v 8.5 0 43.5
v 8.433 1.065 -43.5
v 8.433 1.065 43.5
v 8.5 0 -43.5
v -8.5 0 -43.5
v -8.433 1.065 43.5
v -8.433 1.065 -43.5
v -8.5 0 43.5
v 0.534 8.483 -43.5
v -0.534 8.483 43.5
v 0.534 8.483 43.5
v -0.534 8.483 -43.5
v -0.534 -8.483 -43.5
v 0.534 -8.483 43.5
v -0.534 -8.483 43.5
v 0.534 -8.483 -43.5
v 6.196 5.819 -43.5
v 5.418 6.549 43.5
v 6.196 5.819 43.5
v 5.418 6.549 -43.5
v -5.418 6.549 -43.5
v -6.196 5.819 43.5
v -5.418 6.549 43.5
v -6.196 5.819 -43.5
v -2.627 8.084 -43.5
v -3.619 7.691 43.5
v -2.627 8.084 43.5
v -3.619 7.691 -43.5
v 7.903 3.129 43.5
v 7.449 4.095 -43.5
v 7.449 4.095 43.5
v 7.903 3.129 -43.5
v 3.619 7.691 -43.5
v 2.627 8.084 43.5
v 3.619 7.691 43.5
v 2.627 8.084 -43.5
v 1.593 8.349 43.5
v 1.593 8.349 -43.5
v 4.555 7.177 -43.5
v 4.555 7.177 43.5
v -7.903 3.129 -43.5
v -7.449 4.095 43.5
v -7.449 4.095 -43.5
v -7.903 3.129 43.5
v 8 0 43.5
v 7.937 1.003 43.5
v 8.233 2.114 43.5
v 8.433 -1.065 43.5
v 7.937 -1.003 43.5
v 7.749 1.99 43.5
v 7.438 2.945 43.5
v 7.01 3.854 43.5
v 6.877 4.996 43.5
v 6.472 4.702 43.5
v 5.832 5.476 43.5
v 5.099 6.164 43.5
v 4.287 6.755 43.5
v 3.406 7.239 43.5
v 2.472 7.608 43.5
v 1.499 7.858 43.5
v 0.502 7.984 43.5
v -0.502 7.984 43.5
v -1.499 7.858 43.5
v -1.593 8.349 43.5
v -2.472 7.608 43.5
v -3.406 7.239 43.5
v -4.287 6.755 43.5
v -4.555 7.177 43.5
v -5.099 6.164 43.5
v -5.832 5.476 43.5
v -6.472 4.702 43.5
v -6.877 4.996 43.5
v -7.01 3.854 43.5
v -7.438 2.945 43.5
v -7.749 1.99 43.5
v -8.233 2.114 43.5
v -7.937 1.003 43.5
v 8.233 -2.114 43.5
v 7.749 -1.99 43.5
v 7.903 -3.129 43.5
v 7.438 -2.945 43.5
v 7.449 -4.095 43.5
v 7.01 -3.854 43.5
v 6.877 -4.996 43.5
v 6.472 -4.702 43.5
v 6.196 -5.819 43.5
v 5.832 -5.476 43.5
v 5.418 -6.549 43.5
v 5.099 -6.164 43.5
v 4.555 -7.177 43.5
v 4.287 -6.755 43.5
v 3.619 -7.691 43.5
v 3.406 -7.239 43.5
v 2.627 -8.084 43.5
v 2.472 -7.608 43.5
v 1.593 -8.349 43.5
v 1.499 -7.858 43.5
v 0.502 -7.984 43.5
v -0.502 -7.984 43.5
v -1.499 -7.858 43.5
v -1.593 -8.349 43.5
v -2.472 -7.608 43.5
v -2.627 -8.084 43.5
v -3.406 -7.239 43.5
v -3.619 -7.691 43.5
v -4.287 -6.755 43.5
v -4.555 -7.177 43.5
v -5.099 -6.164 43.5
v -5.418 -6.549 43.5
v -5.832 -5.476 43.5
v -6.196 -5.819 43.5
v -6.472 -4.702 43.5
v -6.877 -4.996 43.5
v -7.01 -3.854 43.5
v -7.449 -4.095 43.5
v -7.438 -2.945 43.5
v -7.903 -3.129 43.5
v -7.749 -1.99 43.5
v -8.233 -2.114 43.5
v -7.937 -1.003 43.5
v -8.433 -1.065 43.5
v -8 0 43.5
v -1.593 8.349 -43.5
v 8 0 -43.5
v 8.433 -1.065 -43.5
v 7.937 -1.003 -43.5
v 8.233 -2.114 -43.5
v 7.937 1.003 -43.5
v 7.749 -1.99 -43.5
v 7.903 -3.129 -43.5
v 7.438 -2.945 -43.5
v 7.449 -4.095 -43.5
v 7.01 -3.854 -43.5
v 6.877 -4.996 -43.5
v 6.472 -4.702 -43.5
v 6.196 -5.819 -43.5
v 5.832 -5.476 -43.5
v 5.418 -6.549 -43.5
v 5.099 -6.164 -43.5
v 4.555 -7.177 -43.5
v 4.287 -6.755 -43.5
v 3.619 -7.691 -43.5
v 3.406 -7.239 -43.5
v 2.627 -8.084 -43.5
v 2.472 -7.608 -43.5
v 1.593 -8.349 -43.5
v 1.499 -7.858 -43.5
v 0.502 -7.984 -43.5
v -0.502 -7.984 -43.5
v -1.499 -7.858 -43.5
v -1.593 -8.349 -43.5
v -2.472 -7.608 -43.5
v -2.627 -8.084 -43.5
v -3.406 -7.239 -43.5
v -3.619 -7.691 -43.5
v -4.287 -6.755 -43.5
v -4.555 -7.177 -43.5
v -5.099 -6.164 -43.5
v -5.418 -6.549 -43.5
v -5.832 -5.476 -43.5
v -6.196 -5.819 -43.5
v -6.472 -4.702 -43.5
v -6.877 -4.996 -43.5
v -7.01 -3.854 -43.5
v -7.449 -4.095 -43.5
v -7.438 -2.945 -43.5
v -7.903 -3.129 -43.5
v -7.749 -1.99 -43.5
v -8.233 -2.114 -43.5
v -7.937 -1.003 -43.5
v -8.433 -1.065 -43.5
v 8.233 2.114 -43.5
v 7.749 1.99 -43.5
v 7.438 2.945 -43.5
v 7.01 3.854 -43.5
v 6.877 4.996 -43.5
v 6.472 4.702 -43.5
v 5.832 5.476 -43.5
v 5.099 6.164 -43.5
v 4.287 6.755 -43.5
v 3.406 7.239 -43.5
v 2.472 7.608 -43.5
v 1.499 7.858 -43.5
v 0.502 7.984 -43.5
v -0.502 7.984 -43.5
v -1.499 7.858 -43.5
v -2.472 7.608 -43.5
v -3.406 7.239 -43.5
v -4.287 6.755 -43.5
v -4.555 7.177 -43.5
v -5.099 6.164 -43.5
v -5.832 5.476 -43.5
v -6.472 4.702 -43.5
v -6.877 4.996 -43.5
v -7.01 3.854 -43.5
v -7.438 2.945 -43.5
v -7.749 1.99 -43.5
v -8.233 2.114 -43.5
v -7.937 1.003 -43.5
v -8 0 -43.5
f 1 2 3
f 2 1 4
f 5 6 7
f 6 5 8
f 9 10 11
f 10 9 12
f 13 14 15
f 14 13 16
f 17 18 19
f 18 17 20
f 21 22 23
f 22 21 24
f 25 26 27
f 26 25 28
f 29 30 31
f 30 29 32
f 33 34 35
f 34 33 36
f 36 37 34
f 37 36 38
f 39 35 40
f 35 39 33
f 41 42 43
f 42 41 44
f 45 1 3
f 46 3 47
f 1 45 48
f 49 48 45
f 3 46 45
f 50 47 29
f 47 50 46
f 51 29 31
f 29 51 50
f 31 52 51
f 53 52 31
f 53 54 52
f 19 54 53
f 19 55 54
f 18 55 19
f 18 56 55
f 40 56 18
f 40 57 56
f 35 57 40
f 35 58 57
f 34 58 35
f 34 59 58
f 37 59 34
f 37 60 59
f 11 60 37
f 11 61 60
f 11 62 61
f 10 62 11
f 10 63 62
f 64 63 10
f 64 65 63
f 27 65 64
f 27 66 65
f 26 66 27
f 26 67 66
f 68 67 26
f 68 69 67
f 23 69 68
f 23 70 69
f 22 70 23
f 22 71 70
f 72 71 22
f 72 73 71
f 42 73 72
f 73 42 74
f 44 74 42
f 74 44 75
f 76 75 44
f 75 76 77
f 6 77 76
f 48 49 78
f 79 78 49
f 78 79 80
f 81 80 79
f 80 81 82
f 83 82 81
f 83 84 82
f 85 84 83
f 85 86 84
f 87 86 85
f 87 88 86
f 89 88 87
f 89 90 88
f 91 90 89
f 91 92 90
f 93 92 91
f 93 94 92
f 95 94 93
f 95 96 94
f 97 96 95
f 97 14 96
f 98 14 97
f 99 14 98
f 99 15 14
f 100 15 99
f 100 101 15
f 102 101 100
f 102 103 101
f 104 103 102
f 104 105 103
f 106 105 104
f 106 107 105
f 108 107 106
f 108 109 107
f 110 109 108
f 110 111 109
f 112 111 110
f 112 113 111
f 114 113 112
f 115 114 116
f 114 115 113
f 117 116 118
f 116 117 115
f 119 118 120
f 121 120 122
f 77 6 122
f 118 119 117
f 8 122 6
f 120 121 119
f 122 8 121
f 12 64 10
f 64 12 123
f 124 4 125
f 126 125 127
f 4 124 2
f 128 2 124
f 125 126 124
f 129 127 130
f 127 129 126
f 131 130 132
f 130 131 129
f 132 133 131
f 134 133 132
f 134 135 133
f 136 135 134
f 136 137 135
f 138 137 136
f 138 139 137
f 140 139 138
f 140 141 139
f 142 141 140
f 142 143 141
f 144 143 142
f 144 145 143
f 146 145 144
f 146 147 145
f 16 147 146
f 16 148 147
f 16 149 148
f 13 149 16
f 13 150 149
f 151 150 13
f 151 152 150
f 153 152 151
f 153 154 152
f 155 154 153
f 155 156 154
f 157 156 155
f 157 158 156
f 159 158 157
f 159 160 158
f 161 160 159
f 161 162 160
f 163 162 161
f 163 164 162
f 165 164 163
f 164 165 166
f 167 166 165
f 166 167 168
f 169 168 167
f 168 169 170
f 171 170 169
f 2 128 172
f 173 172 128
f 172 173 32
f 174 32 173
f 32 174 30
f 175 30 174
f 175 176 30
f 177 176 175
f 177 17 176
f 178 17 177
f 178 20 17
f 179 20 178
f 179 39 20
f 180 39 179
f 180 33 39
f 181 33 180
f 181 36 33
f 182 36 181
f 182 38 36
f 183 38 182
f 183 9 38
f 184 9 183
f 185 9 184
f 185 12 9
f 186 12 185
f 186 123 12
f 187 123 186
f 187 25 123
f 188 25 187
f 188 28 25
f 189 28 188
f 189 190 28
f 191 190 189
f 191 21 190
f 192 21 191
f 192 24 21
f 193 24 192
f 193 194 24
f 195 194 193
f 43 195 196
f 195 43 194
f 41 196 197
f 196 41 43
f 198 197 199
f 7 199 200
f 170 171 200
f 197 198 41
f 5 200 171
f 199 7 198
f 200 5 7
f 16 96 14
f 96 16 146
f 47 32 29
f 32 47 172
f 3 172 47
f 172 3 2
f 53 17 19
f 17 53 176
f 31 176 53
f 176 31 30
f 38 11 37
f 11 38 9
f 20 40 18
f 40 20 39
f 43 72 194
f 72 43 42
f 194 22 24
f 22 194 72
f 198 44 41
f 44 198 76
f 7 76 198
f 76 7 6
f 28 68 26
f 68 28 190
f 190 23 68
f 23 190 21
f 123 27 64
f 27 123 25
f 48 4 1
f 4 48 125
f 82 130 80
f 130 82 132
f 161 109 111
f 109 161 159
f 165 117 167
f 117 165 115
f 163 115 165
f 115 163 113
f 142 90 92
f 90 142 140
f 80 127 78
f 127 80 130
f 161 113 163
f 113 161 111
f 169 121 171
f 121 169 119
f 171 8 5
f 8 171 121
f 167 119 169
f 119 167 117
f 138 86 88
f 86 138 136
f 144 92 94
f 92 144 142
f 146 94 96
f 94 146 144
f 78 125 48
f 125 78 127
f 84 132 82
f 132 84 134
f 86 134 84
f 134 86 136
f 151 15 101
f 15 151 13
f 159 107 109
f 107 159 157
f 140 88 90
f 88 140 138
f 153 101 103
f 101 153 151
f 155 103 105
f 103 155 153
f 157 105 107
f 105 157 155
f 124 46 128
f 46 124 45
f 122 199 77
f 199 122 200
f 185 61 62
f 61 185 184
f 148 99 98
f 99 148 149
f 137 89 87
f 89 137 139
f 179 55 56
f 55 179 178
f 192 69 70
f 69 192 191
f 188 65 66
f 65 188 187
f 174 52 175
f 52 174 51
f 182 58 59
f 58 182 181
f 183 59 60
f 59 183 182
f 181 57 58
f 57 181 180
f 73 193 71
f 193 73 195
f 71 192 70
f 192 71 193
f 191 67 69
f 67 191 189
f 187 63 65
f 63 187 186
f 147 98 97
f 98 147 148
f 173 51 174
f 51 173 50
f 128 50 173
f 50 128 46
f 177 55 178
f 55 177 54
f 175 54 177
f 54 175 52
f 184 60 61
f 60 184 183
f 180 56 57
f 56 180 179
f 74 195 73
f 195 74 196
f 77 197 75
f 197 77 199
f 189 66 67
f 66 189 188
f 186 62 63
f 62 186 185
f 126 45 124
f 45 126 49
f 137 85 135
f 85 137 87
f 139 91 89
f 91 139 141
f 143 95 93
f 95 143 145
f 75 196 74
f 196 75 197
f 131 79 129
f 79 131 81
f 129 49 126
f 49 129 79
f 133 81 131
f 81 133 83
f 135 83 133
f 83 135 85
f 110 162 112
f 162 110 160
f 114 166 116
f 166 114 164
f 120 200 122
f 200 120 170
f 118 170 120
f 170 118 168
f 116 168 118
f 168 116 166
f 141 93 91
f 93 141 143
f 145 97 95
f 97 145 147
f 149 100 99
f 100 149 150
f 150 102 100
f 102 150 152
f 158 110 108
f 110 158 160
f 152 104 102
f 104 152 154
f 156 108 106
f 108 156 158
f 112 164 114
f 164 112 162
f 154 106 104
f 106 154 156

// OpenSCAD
$fn = 50;


difference() {
	union() {
		translate(v = [0, 0, -43.5000000000]) {
			cylinder(h = 87, r = 8.5000000000);
		}
	}
	union() {
		translate(v = [0, 0, -100.0000000000]) {
			cylinder(h = 200, r = 8);
		}
	}
}
